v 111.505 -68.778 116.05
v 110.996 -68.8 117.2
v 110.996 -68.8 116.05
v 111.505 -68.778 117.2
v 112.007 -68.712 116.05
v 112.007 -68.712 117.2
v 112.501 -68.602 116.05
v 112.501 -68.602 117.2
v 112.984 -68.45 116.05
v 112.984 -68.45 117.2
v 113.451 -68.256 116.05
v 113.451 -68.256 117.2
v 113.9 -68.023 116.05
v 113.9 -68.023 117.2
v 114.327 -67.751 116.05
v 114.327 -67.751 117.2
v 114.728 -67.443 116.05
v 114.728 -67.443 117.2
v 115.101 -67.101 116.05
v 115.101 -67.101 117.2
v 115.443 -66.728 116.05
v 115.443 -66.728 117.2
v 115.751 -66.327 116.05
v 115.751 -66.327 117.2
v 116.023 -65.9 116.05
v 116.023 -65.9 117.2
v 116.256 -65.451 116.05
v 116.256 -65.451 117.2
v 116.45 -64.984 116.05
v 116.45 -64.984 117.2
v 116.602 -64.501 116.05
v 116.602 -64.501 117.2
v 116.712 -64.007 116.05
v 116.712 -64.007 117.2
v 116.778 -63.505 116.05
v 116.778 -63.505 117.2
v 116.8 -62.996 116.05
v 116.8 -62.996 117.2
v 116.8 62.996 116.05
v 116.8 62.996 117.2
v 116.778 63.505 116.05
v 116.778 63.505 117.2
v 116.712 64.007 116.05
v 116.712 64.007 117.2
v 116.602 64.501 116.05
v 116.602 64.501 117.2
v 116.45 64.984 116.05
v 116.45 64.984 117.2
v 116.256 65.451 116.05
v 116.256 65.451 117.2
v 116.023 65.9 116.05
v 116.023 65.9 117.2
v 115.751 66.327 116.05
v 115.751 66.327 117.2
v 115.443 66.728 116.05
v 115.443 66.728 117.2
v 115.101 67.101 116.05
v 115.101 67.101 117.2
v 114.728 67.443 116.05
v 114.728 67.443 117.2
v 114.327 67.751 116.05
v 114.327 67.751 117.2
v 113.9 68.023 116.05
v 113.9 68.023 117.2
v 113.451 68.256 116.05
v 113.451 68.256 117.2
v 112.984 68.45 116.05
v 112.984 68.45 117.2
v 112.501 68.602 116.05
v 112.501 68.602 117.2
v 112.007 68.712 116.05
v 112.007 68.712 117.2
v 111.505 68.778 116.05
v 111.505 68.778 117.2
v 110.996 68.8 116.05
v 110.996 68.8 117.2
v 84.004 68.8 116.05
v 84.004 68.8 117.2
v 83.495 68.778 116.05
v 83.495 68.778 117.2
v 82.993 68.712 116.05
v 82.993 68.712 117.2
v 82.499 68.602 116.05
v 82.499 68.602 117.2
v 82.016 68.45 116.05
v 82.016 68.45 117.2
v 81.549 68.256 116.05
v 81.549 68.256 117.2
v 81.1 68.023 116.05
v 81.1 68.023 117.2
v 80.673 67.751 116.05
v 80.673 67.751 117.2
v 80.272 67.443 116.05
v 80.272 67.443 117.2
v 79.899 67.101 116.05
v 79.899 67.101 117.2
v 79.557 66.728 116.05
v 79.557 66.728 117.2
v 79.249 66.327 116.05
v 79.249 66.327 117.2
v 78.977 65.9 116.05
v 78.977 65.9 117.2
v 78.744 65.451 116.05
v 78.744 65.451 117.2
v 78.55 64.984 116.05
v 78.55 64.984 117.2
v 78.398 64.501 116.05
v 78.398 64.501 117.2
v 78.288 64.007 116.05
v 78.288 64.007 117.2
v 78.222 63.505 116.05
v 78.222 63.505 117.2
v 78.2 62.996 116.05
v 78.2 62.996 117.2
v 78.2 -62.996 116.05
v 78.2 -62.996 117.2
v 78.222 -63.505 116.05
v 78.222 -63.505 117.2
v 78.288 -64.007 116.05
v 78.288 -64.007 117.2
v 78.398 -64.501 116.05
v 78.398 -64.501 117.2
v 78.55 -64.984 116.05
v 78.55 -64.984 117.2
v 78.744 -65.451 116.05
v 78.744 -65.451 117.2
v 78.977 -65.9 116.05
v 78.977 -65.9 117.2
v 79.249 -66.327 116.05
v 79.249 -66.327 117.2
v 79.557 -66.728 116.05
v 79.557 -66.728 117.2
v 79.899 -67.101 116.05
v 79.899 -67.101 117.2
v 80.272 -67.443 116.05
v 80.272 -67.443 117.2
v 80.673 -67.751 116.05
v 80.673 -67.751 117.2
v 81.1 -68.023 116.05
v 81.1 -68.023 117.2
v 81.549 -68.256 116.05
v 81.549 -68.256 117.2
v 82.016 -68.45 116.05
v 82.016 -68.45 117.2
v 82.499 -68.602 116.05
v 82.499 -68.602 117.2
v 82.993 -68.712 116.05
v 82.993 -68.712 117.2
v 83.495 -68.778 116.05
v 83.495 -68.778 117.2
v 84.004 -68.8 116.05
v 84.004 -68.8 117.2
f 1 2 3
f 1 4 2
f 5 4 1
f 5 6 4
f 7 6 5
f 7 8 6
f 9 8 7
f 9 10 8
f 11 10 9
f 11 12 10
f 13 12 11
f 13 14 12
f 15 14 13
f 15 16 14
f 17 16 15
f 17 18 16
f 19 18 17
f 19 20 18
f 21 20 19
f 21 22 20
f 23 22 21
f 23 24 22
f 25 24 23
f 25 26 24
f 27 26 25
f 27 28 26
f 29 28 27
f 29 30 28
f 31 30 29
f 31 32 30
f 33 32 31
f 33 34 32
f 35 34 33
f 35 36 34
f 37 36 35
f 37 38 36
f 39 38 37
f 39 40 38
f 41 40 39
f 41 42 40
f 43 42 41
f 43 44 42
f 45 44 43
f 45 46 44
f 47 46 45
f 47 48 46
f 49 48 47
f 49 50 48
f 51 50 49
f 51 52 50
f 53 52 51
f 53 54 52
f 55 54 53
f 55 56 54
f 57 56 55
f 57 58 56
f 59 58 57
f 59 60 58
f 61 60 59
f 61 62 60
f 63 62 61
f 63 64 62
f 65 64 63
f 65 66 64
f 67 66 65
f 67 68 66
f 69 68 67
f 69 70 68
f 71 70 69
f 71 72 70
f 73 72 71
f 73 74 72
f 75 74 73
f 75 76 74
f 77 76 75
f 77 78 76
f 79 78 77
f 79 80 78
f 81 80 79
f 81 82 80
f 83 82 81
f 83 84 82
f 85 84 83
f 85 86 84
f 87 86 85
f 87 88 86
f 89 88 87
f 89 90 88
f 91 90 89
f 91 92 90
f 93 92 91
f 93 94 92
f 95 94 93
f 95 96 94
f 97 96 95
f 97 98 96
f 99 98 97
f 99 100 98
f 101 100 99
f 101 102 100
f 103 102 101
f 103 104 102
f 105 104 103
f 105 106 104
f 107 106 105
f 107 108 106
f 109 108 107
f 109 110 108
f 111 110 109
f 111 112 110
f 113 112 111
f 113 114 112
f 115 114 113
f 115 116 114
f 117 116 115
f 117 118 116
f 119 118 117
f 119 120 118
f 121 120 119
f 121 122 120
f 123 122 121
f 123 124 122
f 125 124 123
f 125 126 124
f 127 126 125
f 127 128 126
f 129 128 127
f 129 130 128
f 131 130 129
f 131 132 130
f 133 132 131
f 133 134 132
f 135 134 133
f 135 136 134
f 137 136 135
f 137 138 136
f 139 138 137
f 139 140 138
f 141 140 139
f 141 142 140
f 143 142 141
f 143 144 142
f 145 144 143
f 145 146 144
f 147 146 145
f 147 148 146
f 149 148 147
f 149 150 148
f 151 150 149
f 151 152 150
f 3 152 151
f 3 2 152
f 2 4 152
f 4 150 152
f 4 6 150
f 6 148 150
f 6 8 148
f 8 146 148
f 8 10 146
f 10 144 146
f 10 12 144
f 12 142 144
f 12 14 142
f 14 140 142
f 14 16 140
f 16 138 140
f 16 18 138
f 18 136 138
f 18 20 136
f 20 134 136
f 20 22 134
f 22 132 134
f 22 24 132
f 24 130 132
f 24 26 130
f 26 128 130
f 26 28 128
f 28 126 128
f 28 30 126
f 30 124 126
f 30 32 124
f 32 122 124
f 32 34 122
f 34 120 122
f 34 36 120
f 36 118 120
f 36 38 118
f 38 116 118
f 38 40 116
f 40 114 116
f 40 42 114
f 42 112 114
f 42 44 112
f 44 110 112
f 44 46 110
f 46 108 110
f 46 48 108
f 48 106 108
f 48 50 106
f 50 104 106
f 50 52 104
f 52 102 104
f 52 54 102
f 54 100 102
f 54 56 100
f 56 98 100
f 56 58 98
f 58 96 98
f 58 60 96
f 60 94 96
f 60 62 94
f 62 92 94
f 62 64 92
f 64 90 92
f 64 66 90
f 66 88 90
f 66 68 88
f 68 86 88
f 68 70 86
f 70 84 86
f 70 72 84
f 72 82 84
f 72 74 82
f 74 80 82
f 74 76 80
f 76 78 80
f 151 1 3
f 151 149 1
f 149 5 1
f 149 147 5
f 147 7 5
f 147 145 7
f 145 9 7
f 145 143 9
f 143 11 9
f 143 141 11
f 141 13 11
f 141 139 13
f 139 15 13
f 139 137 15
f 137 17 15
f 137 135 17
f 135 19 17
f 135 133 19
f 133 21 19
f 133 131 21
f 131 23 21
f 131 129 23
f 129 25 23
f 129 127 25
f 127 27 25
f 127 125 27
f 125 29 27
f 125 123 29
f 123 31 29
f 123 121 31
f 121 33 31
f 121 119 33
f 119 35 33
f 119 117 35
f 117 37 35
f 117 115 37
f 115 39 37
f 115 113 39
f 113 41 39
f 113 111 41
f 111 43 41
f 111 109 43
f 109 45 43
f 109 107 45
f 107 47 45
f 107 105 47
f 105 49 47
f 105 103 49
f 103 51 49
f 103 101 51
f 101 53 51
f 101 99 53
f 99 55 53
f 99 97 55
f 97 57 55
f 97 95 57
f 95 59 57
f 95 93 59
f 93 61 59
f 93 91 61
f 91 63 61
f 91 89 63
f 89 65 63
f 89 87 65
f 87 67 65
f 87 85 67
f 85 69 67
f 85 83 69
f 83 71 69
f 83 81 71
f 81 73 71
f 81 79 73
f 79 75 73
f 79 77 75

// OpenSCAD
// file: ../md_params.scad
// =====================================================================
//  Microduck-look skin for the Open Duck Mini v2 skeleton
//  Shared parameters and helpers.
//  Frame: Open Duck print/robot frame, mm. +x forward, +y left, +z up.
//  Every part is modelled where it sits on the robot (zero pose).
// =====================================================================

$fn = 72;
EPS = 0.01;

// ---------- fasteners ----------
INSERT_D   = 4.0;   // hole for M3 x 5 brass heat-set insert (Amazon B0DZ8B7FW1)
INSERT_L   = 6.0;   // hole depth for that insert
M3_CLR     = 3.4;   // M3 clearance
M3_HEAD    = 6.5;   // M3 socket-head counterbore
M3_NUT     = 6.4;   // M3 nut across corners (+clearance)
M2_TAP     = 1.8;   // M2 self-tapping pilot (SG90 tab screws, servo adapter)
M25_TAP    = 2.2;   // M2.5 self-tapping pilot (Radxa)
M2_CLR     = 2.4;

// ---------- colours (for previews only) ----------
C_WHITE = [0.95, 0.94, 0.90];
C_BLACK = [0.13, 0.13, 0.14];

// ---------- helpers ----------
function lerp(a, b, t) = a + (b - a) * t;

// Section with vertical sides from zb to zc and a superellipse cap from zc to zt.
// Points are (y, z). n = 2 gives an ellipse, larger n gives a squarer top.
function se_pts(w, zb, zc, zt, n, N = 56) =
    concat(
        [[ w, zb]],
        [for (i = [0:N]) let(t = i * 180 / N, c = cos(t), s = sin(t))
            [w * sign(c) * pow(abs(c), 2 / n), zc + (zt - zc) * pow(abs(s), 2 / n)]],
        [[-w, zb]]
    );

// st = [x, half_width, z_bottom, z_curve_start, z_top, exponent]
module station(st, inset = 0, ext = 0) {
    translate([st[0], 0, 0]) rotate([90, 0, 90])
        linear_extrude(height = EPS, center = true)
            offset(delta = -inset)
                polygon(se_pts(st[1], st[2] - ext, st[3], st[4], st[5]));
}

// piecewise loft through convex stations (hull of neighbours)
module loft(sts, inset = 0, ext = 0) {
    for (i = [0:len(sts) - 2])
        hull() { station(sts[i], inset, ext); station(sts[i + 1], inset, ext); }
}

// station parameters interpolated at any x inside the list
function st_at(sts, x) =
    let(i = max([for (k = [0:len(sts) - 2]) if (sts[k][0] <= x) k]),
        a = sts[i], b = sts[i + 1], t = (x - a[0]) / (b[0] - a[0]))
    [x, lerp(a[1], b[1], t), lerp(a[2], b[2], t), lerp(a[3], b[3], t),
        lerp(a[4], b[4], t), lerp(a[5], b[5], t)];

// heat-set insert pocket: opening at origin, going along -z by default
module insert_hole(depth = INSERT_L, d = INSERT_D) {
    translate([0, 0, -depth]) cylinder(d = d, h = depth + EPS);
    translate([0, 0, -0.6]) cylinder(d1 = d, d2 = d + 0.8, h = 0.6 + EPS);   // lead-in chamfer
}

// M3 clearance with counterbore, axis +z, counterbore at the top
module m3_cb(len_total, cb_depth) {
    translate([0, 0, -EPS]) cylinder(d = M3_CLR, h = len_total + 2 * EPS);
    translate([0, 0, len_total - cb_depth]) cylinder(d = M3_HEAD, h = cb_depth + 1);
}

module rrect(x0, x1, y0, y1, r) {
    translate([x0 + r, y0 + r]) offset(r = r) square([x1 - x0 - 2 * r, y1 - y0 - 2 * r]);
}
// main file
include <../md_params.scad>
include <../md_head.scad>
mouth_jaw();
